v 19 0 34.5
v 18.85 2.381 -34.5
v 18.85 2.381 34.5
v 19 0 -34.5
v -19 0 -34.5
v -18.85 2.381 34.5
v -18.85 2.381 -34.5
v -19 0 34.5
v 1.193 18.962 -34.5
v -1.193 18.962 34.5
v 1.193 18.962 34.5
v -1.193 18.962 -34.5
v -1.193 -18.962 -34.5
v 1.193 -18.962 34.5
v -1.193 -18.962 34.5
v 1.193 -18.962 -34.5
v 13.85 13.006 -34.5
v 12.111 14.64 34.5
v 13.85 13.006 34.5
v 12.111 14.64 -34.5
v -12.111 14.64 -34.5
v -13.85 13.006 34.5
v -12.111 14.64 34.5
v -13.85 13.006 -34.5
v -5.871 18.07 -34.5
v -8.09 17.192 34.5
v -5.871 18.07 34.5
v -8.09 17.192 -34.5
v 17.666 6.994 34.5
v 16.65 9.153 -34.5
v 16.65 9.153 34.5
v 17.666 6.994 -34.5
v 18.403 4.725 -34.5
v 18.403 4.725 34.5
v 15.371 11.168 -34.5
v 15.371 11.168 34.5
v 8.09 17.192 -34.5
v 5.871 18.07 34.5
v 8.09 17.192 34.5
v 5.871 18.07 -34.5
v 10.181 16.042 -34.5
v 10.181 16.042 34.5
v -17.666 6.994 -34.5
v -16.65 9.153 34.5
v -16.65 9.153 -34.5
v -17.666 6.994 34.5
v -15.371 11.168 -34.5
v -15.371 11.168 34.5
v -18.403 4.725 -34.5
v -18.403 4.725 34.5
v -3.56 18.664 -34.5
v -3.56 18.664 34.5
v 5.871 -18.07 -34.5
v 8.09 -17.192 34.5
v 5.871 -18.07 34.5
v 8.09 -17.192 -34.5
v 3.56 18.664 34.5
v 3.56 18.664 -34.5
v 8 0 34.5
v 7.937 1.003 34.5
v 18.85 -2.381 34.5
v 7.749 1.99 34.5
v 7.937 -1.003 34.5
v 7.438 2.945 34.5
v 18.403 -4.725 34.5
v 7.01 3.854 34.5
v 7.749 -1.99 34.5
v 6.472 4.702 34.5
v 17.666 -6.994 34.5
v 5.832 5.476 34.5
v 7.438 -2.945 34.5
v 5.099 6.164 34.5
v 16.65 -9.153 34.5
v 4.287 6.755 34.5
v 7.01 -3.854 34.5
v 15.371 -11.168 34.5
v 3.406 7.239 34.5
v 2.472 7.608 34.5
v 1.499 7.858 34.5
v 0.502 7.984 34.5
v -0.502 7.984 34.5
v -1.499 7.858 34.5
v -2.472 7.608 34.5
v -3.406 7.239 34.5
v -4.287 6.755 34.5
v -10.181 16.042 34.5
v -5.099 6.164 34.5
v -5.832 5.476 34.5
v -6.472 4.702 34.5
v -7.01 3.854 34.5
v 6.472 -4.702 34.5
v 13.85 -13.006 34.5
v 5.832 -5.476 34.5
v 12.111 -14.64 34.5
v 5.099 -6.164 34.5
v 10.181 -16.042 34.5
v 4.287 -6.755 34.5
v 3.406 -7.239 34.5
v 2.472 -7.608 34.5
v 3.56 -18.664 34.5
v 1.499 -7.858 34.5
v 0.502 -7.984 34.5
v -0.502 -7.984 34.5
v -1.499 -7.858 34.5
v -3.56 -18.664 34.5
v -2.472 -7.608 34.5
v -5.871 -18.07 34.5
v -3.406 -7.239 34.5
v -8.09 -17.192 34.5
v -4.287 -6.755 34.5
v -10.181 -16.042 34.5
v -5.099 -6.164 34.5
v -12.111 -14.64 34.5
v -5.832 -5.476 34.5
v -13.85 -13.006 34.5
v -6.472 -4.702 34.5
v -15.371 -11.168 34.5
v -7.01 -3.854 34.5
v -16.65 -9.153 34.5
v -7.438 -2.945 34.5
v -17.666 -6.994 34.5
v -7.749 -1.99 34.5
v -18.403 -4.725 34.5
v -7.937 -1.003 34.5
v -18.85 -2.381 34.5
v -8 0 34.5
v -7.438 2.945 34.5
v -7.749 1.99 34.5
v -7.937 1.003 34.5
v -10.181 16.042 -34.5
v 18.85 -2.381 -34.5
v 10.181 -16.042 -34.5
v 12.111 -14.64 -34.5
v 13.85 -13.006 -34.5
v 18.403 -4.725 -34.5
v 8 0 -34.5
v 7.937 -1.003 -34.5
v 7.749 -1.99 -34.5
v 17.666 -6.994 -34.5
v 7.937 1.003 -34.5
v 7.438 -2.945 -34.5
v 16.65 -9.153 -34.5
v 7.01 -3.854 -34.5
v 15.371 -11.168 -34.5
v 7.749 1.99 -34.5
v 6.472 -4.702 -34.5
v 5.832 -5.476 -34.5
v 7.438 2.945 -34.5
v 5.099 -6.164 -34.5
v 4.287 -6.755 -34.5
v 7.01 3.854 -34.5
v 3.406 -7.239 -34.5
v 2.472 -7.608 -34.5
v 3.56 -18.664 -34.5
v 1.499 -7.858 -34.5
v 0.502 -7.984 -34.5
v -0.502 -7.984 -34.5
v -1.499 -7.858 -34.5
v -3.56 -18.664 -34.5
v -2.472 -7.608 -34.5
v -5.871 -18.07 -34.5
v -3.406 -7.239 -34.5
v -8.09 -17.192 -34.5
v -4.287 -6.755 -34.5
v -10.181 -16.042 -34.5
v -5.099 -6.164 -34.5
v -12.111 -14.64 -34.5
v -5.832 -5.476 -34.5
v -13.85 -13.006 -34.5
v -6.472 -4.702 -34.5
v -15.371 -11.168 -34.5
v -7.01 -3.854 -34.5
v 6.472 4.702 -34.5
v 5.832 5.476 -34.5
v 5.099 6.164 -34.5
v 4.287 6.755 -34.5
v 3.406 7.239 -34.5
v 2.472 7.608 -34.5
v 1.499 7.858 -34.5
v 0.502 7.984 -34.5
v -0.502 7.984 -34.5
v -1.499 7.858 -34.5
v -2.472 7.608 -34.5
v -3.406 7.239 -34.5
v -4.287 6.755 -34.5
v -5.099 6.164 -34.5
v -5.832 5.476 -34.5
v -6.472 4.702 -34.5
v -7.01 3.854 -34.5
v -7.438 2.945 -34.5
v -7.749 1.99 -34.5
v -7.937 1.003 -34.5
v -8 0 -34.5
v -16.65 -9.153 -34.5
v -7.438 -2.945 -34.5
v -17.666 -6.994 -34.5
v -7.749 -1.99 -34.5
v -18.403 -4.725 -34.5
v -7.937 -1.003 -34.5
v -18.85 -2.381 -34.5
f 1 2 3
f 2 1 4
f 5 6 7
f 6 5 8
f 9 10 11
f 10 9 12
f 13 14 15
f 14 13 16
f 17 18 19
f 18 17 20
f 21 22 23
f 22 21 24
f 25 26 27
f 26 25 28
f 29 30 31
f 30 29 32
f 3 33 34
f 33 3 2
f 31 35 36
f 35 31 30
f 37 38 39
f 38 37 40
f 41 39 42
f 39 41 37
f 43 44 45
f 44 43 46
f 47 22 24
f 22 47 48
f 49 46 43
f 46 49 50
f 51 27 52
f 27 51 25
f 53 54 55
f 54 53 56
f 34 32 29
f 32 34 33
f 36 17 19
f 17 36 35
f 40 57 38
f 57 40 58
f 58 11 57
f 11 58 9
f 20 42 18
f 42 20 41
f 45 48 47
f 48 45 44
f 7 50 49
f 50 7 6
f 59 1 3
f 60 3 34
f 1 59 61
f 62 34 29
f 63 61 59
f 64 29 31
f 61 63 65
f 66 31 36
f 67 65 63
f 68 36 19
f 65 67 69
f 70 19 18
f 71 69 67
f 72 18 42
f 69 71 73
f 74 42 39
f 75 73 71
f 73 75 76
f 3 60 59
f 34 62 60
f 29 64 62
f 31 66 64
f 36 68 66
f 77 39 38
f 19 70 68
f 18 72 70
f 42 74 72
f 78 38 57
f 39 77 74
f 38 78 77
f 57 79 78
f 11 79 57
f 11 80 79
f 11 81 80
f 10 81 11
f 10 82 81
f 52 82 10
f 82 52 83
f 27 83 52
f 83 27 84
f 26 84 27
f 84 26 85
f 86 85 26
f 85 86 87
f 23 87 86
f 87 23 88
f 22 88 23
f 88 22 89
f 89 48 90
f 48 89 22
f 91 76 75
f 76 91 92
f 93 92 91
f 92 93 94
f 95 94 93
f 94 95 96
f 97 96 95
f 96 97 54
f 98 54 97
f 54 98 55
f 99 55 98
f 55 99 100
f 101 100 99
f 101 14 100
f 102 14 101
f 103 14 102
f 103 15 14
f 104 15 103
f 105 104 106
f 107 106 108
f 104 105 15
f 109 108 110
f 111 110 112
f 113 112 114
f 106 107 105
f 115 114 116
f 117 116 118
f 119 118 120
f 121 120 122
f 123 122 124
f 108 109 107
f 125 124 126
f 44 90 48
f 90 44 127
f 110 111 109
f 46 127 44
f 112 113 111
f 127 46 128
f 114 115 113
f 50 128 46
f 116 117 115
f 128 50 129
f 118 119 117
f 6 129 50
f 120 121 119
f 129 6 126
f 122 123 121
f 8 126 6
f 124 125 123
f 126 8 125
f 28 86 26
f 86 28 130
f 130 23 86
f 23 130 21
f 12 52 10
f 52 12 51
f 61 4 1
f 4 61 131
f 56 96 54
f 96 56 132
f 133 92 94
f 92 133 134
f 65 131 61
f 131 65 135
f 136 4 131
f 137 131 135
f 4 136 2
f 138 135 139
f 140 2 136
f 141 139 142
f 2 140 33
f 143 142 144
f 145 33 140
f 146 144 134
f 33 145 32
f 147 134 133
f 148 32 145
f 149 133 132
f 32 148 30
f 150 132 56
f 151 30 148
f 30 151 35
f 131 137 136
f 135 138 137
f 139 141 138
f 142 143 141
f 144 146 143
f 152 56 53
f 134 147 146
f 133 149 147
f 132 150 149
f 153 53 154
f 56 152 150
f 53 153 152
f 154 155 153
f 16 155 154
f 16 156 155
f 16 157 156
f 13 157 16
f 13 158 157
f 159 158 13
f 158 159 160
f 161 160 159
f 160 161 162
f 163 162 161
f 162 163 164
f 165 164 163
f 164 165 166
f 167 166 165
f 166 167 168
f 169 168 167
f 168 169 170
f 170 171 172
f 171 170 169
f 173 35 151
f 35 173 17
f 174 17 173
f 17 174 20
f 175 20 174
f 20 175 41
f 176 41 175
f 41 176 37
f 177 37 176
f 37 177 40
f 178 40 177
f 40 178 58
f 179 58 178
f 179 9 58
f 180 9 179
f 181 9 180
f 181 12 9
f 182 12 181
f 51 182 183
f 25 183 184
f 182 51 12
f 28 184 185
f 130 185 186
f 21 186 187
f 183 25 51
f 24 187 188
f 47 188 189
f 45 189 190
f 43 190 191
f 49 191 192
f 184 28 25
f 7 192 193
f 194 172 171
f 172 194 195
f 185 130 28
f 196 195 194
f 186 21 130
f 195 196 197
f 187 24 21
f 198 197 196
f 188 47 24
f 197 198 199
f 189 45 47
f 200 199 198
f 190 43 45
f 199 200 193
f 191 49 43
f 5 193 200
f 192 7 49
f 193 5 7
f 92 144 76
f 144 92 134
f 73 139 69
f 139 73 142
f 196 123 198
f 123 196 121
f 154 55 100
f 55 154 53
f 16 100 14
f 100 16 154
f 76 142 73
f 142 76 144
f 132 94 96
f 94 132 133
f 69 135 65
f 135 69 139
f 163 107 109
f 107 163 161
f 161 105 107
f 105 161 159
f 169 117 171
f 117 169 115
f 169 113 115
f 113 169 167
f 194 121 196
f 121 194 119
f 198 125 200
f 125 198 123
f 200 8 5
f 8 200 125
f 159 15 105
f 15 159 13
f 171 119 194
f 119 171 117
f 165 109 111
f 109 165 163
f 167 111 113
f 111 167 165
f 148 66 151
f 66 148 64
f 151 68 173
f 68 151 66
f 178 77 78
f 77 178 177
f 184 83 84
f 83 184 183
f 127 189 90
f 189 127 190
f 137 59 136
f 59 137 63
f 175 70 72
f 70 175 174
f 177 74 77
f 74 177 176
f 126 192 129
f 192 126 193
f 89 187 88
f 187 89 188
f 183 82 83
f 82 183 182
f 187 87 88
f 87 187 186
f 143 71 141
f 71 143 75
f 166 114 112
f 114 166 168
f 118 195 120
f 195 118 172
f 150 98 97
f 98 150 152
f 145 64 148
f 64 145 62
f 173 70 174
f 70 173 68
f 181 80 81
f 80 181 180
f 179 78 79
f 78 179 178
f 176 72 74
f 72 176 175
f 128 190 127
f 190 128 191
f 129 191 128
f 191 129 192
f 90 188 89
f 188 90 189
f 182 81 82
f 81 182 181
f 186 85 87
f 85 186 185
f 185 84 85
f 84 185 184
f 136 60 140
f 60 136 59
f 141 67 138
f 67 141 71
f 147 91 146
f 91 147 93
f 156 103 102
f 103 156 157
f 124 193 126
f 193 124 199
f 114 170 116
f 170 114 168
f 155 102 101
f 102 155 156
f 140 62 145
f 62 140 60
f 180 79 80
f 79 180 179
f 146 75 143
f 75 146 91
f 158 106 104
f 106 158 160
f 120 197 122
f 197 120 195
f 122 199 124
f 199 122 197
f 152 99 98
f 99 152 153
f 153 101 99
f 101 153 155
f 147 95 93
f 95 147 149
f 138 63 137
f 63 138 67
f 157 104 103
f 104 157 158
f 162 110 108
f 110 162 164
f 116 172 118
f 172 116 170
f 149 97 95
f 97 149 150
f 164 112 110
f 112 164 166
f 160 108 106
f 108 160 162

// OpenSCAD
$fn = 50;


difference() {
	union() {
		translate(v = [0, 0, -34.5000000000]) {
			cylinder(h = 69, r = 19.0000000000);
		}
	}
	union() {
		translate(v = [0, 0, -100.0000000000]) {
			cylinder(h = 200, r = 8);
		}
	}
}
